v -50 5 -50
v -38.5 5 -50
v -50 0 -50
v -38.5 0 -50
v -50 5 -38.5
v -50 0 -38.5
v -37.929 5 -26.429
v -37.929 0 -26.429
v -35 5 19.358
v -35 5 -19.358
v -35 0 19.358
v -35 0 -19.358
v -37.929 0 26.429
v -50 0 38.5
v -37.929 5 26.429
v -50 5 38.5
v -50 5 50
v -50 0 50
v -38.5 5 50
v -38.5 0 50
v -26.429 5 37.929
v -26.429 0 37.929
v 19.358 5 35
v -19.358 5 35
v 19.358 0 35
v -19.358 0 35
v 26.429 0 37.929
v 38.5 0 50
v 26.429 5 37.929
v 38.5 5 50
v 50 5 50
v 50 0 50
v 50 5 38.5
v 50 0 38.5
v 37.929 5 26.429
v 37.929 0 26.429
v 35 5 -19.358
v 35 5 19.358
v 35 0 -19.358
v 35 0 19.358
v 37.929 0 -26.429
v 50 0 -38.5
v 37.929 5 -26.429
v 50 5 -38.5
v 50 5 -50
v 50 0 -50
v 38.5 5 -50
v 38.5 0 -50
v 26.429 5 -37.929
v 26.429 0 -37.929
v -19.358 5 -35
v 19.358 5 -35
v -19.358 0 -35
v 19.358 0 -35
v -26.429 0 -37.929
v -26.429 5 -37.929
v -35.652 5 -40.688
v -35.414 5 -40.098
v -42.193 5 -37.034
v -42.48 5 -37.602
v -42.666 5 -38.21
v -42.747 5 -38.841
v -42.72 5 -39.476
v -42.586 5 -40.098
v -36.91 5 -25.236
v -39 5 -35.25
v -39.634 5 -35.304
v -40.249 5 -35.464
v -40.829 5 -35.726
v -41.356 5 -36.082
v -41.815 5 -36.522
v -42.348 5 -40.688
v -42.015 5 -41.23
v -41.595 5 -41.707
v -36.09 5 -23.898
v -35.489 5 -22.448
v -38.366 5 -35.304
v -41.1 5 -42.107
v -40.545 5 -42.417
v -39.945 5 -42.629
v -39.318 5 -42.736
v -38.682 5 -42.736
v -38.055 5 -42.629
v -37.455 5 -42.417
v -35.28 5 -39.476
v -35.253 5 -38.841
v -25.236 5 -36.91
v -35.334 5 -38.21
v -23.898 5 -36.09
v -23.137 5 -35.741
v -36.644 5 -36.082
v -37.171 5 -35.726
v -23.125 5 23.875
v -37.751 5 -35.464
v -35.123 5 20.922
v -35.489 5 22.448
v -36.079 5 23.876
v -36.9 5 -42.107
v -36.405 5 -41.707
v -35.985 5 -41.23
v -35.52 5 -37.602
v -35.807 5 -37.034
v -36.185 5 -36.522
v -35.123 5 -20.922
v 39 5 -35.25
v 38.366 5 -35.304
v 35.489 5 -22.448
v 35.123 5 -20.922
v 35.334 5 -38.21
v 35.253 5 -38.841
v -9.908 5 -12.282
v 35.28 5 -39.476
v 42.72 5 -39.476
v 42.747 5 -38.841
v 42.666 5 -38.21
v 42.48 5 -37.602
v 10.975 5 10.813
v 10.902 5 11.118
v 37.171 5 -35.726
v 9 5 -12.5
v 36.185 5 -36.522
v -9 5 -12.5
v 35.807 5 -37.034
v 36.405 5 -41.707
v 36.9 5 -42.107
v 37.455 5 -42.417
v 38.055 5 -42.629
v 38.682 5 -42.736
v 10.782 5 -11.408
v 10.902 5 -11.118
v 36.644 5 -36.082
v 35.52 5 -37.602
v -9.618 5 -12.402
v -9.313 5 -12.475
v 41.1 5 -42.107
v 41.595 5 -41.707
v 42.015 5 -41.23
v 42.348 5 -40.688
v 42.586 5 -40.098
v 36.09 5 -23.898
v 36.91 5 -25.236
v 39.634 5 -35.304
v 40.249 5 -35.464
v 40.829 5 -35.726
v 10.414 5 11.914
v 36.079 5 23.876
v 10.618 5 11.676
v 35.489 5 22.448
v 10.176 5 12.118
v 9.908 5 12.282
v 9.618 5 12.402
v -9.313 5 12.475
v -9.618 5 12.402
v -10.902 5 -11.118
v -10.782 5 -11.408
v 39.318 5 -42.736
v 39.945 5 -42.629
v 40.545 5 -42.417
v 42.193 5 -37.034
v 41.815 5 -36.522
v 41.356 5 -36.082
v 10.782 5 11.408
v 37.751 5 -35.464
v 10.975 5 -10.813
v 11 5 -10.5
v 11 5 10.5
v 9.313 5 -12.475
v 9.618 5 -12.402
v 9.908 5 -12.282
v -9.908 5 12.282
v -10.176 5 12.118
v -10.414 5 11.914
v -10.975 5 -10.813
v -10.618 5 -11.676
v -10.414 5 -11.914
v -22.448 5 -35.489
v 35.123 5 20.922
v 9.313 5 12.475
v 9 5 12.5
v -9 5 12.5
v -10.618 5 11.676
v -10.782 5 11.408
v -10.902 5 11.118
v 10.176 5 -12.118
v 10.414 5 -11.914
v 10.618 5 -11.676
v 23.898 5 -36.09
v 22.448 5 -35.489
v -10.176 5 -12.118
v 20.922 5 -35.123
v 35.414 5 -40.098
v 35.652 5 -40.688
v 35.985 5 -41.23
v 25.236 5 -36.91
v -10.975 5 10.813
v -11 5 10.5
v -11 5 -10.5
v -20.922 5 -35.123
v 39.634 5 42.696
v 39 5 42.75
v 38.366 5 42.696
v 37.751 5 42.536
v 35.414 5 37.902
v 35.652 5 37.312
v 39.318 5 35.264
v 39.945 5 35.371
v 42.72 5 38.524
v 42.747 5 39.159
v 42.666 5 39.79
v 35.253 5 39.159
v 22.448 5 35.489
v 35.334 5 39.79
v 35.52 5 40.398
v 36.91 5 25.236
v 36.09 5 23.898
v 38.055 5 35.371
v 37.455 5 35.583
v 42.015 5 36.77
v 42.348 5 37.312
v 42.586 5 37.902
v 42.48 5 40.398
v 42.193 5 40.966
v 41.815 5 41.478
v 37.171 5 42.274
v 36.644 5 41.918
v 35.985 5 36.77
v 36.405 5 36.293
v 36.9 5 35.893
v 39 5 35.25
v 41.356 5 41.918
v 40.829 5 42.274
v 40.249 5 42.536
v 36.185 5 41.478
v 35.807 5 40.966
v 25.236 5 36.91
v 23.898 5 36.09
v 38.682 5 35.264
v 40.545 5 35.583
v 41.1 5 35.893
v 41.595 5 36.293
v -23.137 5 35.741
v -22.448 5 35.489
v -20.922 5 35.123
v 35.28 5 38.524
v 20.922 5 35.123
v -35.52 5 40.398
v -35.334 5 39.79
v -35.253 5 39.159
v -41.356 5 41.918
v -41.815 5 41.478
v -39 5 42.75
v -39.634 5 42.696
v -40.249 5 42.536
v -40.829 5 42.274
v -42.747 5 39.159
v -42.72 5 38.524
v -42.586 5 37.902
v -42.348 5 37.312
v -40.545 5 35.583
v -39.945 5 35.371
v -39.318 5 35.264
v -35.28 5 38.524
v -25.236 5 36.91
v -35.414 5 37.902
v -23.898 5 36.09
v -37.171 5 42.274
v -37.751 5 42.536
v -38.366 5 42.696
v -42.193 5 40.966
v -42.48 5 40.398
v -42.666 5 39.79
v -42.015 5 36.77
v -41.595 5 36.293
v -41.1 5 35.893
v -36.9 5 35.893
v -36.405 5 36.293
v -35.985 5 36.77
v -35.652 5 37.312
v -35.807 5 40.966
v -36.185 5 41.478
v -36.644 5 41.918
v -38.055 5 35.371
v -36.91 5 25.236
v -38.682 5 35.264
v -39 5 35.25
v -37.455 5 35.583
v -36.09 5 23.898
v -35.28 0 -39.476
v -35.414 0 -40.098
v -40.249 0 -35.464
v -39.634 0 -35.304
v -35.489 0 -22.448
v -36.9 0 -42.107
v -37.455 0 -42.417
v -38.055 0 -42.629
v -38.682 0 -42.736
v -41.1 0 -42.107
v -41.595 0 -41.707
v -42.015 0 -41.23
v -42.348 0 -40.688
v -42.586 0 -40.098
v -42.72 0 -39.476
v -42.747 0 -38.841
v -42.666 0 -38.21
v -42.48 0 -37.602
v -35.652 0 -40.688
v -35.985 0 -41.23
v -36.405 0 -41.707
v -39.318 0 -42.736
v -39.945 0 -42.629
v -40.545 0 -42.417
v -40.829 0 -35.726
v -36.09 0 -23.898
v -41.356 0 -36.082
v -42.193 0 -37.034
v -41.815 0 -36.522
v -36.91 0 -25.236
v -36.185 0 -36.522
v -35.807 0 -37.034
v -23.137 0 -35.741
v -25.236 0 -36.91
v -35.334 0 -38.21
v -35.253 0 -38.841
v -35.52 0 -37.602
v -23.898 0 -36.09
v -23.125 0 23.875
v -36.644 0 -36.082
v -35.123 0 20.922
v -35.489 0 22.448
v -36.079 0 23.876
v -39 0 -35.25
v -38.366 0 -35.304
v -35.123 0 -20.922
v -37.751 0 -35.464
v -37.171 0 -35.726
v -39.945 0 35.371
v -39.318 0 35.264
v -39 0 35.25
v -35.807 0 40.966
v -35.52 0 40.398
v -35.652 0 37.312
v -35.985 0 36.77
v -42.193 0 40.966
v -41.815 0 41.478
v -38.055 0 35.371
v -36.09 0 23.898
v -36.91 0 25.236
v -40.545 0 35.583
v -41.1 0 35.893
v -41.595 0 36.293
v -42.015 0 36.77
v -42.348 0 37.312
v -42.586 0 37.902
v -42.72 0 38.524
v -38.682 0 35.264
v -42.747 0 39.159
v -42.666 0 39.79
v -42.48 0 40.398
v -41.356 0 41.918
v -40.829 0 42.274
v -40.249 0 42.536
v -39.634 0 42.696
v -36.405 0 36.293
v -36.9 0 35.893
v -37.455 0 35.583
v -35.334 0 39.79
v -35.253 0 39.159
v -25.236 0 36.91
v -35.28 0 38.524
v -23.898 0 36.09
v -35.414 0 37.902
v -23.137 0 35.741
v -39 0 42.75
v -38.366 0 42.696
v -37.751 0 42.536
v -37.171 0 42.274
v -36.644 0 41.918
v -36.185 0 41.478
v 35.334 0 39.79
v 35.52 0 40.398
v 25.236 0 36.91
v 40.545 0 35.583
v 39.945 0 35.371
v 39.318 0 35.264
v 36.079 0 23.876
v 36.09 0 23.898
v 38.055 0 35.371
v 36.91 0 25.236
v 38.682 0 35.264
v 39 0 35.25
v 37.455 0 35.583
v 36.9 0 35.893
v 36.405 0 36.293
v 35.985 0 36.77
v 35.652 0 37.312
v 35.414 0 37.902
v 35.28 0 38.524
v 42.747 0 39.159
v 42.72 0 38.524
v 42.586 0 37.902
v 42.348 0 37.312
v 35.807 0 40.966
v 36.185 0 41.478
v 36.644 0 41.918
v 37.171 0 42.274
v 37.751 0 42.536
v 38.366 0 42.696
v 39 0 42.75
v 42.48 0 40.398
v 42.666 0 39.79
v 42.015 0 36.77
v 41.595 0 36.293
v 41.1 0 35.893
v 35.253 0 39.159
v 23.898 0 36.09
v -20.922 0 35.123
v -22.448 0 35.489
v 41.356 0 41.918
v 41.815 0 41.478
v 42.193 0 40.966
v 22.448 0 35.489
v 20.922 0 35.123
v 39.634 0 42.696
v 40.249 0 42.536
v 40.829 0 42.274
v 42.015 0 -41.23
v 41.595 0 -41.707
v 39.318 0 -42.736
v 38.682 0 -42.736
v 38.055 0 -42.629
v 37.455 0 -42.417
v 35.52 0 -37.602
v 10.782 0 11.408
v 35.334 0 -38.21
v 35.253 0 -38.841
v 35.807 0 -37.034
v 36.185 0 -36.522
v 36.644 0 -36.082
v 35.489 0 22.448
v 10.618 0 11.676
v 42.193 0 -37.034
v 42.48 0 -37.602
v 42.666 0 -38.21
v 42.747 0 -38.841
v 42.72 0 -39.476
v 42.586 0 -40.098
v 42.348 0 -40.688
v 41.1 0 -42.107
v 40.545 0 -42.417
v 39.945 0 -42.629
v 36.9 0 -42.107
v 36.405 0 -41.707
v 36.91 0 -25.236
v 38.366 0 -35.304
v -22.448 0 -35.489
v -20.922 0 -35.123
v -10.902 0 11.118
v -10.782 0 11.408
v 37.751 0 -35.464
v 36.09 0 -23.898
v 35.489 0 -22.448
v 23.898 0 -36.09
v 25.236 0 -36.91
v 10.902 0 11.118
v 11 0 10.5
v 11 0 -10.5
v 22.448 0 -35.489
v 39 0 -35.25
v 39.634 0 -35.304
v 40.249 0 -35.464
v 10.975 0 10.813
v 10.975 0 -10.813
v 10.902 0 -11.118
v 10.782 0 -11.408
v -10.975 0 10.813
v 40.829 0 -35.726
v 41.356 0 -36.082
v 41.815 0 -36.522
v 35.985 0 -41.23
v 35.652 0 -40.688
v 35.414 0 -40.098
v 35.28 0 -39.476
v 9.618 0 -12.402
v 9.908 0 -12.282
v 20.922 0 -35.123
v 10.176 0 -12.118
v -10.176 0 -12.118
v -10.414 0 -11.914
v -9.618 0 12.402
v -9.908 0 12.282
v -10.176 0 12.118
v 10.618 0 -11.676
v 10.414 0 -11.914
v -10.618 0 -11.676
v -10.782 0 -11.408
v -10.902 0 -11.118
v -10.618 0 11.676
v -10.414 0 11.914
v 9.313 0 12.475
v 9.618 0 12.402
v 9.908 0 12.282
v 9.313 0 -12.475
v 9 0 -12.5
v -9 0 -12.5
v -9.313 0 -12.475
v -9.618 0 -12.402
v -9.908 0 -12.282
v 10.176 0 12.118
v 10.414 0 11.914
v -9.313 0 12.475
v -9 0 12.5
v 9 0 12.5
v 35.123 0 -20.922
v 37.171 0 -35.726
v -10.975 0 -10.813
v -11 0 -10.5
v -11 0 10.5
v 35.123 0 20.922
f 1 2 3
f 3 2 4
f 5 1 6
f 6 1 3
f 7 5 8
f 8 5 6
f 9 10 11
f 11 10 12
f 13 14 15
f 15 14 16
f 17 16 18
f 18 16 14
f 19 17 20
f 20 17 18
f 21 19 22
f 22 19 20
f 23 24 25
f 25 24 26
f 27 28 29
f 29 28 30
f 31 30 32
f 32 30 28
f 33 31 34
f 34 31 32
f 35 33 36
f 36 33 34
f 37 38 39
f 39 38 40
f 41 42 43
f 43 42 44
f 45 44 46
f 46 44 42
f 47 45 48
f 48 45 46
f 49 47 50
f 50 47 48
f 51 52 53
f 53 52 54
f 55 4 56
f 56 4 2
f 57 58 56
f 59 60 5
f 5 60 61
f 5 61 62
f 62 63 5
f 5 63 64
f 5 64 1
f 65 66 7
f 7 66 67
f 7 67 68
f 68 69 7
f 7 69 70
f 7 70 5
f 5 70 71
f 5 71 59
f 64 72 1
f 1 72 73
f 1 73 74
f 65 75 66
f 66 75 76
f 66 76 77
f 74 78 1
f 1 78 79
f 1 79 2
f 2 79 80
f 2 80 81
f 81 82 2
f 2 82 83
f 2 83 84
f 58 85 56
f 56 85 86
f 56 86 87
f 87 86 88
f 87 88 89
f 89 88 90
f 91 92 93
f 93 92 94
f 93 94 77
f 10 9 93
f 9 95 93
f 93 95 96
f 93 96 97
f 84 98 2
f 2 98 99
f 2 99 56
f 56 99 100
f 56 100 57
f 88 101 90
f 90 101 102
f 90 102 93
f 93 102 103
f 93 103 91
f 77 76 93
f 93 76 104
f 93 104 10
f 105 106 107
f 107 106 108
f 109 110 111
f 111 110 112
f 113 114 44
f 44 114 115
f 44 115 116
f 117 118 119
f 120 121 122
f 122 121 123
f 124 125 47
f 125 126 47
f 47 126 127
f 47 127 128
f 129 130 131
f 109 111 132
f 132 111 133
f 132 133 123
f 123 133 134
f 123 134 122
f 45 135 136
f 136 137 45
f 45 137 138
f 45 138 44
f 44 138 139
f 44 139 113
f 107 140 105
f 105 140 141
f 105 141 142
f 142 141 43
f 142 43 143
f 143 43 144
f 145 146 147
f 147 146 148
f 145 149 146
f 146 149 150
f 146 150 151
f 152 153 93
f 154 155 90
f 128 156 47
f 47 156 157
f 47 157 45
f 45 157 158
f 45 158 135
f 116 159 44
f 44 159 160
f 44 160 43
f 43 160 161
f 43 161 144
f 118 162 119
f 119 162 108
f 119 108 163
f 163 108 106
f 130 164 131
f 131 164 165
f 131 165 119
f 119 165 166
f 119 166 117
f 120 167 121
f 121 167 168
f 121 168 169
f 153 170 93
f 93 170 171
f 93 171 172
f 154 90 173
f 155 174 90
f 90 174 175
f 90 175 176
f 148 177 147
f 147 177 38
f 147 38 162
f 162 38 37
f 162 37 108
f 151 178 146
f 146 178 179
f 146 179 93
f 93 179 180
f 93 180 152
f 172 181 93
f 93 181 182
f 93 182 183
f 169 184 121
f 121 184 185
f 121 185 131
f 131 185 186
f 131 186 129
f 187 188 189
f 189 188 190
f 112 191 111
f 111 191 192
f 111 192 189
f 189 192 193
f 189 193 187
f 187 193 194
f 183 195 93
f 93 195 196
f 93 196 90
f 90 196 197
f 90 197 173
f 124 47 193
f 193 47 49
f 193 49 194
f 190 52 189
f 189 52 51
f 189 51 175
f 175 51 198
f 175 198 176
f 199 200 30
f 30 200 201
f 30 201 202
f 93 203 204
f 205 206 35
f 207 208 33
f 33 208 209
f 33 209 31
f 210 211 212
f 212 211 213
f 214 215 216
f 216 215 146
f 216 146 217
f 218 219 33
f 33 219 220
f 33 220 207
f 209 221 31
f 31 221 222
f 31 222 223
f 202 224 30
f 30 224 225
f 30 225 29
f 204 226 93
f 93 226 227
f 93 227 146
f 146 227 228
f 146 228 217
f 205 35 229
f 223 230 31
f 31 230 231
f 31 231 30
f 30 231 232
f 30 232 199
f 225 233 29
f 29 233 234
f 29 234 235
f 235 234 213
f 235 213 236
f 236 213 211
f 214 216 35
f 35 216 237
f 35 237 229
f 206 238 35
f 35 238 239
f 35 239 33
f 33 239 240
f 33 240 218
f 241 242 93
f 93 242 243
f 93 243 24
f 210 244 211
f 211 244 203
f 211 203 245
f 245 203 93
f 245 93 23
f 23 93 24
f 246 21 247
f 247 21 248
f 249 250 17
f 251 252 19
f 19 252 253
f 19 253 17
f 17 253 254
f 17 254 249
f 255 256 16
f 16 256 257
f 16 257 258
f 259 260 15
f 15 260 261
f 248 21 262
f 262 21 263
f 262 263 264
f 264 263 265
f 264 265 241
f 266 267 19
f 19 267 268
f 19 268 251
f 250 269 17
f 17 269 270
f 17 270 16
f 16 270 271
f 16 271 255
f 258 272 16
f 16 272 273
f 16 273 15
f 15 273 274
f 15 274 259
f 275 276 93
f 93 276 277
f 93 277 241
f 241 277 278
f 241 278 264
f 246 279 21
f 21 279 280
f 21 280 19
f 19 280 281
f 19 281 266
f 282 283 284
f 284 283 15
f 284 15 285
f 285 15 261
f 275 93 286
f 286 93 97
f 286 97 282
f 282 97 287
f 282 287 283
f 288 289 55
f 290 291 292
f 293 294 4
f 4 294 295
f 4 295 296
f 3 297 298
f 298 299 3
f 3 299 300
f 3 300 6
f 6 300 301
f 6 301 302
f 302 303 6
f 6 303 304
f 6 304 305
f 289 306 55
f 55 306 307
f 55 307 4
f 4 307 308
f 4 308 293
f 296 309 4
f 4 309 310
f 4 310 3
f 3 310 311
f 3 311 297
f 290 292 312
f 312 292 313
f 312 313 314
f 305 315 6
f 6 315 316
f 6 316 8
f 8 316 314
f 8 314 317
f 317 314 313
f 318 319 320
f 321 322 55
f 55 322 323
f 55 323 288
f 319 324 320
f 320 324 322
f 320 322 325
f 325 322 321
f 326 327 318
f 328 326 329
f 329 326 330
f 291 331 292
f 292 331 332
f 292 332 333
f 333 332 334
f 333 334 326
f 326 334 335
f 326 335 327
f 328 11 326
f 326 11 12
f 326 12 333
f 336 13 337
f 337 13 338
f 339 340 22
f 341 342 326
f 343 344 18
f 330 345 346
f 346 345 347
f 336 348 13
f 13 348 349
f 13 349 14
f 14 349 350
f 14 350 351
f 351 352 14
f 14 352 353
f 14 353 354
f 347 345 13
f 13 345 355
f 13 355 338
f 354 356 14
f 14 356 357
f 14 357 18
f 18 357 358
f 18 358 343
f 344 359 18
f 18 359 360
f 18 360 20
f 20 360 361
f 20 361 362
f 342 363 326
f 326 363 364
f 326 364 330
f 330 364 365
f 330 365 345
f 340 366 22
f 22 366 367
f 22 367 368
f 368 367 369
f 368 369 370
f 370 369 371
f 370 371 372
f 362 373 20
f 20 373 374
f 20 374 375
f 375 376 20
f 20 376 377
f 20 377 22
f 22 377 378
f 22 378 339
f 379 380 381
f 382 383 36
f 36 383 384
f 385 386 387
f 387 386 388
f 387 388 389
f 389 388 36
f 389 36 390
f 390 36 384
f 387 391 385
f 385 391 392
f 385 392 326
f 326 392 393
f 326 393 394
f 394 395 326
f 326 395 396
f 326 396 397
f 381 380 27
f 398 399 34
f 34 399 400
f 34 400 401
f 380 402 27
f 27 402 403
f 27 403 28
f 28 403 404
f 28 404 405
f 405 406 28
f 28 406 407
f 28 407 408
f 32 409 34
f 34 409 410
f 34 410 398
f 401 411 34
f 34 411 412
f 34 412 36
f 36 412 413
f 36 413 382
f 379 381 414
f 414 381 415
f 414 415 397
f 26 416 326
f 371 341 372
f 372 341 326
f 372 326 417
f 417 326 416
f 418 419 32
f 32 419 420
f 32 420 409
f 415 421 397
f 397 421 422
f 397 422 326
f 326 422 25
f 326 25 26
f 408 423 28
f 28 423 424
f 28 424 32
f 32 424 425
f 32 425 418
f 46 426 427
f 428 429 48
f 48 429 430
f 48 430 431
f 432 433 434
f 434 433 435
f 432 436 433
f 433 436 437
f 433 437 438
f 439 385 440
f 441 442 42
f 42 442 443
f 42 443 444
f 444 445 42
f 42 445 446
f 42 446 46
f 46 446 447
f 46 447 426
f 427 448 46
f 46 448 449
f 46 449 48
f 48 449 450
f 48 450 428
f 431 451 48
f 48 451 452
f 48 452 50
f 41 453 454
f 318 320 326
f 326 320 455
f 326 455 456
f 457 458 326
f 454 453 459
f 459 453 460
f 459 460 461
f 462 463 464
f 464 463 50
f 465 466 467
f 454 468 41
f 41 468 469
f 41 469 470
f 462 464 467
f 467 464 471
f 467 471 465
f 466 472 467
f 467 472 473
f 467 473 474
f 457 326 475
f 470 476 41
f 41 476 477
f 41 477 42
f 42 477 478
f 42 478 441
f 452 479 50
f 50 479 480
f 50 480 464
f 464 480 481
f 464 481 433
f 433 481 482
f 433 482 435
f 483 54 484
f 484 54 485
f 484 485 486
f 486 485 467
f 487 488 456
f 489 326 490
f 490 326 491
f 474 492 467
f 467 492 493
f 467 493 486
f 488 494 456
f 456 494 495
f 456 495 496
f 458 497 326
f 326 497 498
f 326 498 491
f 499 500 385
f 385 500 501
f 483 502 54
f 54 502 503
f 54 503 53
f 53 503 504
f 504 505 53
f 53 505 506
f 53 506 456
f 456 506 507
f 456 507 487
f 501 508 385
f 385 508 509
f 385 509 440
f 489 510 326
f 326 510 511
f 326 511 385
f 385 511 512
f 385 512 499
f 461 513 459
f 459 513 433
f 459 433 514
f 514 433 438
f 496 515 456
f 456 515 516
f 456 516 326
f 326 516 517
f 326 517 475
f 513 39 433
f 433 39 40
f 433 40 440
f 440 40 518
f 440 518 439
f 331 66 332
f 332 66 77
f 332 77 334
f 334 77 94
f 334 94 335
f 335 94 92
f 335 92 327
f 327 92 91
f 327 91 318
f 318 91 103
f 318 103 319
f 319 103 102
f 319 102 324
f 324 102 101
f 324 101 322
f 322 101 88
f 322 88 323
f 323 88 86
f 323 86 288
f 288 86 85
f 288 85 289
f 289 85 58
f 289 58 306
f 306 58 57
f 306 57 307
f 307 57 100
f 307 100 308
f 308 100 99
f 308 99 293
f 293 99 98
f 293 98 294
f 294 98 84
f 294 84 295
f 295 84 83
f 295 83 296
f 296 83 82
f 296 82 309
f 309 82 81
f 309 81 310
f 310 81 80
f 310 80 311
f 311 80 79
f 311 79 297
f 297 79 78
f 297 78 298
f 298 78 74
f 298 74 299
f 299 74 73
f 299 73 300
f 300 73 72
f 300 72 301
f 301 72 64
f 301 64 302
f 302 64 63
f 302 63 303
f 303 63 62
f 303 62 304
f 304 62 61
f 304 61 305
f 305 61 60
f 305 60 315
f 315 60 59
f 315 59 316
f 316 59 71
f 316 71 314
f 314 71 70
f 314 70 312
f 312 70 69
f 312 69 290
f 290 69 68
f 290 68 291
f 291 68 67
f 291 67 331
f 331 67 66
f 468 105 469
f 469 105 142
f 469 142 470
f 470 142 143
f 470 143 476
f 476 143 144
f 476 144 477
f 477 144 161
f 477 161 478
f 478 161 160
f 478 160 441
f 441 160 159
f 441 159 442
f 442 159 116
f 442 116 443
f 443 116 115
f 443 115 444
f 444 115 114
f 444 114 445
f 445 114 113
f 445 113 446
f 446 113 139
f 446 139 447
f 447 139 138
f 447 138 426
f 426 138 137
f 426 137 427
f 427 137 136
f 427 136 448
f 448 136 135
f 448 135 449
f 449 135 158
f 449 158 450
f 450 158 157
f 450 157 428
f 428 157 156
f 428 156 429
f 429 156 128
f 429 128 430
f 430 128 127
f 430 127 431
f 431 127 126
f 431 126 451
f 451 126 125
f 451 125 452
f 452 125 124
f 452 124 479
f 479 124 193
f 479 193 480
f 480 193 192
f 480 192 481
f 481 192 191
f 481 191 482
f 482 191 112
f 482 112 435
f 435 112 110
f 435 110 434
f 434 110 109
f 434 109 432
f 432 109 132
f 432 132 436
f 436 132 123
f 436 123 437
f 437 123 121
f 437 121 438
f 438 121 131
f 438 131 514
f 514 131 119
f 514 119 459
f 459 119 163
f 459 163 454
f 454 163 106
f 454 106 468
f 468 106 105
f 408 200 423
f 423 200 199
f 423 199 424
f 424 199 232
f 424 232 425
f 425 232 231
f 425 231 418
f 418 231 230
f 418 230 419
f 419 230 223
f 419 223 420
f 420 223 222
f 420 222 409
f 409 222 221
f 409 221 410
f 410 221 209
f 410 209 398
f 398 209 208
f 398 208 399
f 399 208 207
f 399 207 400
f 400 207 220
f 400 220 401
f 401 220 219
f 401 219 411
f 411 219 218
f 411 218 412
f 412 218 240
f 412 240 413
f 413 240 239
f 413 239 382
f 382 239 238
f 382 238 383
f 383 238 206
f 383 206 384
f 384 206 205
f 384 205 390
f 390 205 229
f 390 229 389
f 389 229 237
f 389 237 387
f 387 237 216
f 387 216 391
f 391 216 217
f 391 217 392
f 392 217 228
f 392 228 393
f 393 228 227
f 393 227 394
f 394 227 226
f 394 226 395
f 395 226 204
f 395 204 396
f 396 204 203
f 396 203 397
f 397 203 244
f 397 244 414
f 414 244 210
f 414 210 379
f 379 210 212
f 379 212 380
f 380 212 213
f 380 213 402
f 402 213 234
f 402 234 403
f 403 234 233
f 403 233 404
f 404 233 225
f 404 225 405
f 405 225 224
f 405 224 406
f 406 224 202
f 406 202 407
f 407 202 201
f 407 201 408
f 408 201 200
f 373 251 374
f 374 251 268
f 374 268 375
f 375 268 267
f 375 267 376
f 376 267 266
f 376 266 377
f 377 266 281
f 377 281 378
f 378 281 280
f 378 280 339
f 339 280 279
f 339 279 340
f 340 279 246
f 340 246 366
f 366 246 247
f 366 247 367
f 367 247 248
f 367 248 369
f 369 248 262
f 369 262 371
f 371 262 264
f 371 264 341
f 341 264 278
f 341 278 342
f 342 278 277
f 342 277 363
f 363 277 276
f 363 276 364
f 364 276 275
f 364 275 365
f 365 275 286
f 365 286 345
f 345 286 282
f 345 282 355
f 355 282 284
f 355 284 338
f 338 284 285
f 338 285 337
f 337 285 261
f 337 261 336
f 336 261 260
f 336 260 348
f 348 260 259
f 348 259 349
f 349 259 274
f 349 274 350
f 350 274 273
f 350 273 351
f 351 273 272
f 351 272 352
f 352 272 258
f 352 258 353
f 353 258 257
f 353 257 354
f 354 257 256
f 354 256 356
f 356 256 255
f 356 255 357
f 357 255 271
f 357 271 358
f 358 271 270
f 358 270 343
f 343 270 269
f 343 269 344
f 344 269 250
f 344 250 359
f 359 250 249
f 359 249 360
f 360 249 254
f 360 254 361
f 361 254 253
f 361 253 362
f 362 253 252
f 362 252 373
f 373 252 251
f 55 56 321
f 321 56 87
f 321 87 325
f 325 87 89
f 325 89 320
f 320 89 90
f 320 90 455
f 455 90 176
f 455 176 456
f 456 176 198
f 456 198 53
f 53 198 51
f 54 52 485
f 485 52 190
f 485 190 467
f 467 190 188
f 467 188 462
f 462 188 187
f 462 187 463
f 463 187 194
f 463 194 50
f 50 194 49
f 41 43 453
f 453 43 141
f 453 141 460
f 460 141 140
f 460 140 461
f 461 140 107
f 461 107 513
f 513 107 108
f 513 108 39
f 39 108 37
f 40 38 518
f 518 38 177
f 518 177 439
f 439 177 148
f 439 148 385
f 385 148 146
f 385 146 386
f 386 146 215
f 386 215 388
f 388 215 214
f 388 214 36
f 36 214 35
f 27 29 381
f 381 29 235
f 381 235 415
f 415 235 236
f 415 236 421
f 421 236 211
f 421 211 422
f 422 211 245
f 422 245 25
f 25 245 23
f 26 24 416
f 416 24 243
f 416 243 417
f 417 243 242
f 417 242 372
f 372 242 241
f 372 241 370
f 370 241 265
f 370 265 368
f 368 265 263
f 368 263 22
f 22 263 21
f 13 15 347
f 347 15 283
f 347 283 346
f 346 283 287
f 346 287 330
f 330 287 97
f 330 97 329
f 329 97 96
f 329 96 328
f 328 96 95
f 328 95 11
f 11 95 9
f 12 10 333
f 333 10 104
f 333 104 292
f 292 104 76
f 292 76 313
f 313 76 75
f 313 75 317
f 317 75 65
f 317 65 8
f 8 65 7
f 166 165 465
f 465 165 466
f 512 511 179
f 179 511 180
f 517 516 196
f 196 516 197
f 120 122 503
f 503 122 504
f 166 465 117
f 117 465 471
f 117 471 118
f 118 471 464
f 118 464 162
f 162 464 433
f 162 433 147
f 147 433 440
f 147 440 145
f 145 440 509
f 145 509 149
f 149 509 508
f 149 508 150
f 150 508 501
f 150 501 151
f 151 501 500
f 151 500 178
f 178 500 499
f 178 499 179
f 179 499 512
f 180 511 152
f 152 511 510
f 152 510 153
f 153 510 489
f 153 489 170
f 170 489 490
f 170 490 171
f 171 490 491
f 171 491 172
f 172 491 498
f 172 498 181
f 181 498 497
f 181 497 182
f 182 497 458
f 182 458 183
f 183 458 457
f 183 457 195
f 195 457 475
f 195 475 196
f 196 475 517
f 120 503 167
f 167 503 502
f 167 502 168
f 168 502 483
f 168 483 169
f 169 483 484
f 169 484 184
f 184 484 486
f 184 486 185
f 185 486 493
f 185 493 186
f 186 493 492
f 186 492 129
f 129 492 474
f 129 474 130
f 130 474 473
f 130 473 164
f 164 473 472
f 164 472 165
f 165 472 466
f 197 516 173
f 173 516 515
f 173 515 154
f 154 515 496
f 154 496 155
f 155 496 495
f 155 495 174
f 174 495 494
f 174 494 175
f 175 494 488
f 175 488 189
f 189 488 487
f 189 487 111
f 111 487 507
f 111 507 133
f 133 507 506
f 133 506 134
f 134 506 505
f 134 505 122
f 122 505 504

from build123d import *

# Parameters (mm, degrees)
EXTRUDE_1_DEPTH     = 5
SKETCH_2_R          = 3.75
CUT_EXTRUDE_1_DEPTH = 6
FILLET_1_R          = 10
SKETCH_3_W          = 22
SKETCH_3_H          = 25
CUT_EXTRUDE_2_DEPTH = 6
FILLET_2_R          = 2


with BuildPart() as part:
    # ｽｹｯﾁ1 → ﾎﾞｽ - 押し出し1 (new body)
    with BuildSketch(Plane(origin=(0, 0, 0), x_dir=(1, 0, 0), z_dir=(0, 1, 0))):
        Polygon((-50, 38.5), (-50, 50), (-38.5, 50), (-23.5, 35), (23.5, 35), (38.5, 50), (50, 50), (50, 38.5), (35, 23.5), (35, -23.5), (50, -38.5), (50, -50), (38.5, -50), (23.5, -35), (-23.5, -35), (-38.5, -50), (-50, -50), (-50, -38.5), (-35, -23.5), (-35, 23.5), align=None)
    extrude(amount=EXTRUDE_1_DEPTH)

    # ｽｹｯﾁ2 → ｶｯﾄ - 押し出し1 (cut, through all)
    with BuildSketch(Plane(origin=(0, 5, 0), x_dir=(1, 0, 0), z_dir=(0, 1, 0))):
        with Locations((-39, 39)):
            Circle(SKETCH_2_R)
        with Locations((39, 39)):
            Circle(SKETCH_2_R)
        with Locations((39, -39)):
            Circle(SKETCH_2_R)
        with Locations((-39, -39)):
            Circle(SKETCH_2_R)
    extrude(amount=-CUT_EXTRUDE_1_DEPTH, mode=Mode.SUBTRACT)

    # ﾌｨﾚｯﾄ1
    fillet_1_edges = [part.edges().sort_by_distance(p)[0] for p in [
        (-23.5, 2.5, -35),
        (23.5, 2.5, -35),
        (35, 2.5, -23.5),
        (35, 2.5, 23.5),
        (23.5, 2.5, 35),
        (-23.5, 2.5, 35),
        (-35, 2.5, 23.5),
        (-35, 2.5, -23.5),
    ]]
    fillet(fillet_1_edges, radius=FILLET_1_R)

    # ｽｹｯﾁ3 → ｶｯﾄ - 押し出し2 (cut, through all)
    with BuildSketch(Plane(origin=(0, 5, 0), x_dir=(1, 0, 0), z_dir=(0, 1, 0))):
        Rectangle(SKETCH_3_W, SKETCH_3_H)
    extrude(amount=-CUT_EXTRUDE_2_DEPTH, mode=Mode.SUBTRACT)

    # ﾌｨﾚｯﾄ2
    fillet_2_edges = [part.edges().sort_by_distance(p)[0] for p in [
        (11, 2.5, -12.5),
        (11, 2.5, 12.5),
        (-11, 2.5, 12.5),
        (-11, 2.5, -12.5),
    ]]
    fillet(fillet_2_edges, radius=FILLET_2_R)


solid = part.part
